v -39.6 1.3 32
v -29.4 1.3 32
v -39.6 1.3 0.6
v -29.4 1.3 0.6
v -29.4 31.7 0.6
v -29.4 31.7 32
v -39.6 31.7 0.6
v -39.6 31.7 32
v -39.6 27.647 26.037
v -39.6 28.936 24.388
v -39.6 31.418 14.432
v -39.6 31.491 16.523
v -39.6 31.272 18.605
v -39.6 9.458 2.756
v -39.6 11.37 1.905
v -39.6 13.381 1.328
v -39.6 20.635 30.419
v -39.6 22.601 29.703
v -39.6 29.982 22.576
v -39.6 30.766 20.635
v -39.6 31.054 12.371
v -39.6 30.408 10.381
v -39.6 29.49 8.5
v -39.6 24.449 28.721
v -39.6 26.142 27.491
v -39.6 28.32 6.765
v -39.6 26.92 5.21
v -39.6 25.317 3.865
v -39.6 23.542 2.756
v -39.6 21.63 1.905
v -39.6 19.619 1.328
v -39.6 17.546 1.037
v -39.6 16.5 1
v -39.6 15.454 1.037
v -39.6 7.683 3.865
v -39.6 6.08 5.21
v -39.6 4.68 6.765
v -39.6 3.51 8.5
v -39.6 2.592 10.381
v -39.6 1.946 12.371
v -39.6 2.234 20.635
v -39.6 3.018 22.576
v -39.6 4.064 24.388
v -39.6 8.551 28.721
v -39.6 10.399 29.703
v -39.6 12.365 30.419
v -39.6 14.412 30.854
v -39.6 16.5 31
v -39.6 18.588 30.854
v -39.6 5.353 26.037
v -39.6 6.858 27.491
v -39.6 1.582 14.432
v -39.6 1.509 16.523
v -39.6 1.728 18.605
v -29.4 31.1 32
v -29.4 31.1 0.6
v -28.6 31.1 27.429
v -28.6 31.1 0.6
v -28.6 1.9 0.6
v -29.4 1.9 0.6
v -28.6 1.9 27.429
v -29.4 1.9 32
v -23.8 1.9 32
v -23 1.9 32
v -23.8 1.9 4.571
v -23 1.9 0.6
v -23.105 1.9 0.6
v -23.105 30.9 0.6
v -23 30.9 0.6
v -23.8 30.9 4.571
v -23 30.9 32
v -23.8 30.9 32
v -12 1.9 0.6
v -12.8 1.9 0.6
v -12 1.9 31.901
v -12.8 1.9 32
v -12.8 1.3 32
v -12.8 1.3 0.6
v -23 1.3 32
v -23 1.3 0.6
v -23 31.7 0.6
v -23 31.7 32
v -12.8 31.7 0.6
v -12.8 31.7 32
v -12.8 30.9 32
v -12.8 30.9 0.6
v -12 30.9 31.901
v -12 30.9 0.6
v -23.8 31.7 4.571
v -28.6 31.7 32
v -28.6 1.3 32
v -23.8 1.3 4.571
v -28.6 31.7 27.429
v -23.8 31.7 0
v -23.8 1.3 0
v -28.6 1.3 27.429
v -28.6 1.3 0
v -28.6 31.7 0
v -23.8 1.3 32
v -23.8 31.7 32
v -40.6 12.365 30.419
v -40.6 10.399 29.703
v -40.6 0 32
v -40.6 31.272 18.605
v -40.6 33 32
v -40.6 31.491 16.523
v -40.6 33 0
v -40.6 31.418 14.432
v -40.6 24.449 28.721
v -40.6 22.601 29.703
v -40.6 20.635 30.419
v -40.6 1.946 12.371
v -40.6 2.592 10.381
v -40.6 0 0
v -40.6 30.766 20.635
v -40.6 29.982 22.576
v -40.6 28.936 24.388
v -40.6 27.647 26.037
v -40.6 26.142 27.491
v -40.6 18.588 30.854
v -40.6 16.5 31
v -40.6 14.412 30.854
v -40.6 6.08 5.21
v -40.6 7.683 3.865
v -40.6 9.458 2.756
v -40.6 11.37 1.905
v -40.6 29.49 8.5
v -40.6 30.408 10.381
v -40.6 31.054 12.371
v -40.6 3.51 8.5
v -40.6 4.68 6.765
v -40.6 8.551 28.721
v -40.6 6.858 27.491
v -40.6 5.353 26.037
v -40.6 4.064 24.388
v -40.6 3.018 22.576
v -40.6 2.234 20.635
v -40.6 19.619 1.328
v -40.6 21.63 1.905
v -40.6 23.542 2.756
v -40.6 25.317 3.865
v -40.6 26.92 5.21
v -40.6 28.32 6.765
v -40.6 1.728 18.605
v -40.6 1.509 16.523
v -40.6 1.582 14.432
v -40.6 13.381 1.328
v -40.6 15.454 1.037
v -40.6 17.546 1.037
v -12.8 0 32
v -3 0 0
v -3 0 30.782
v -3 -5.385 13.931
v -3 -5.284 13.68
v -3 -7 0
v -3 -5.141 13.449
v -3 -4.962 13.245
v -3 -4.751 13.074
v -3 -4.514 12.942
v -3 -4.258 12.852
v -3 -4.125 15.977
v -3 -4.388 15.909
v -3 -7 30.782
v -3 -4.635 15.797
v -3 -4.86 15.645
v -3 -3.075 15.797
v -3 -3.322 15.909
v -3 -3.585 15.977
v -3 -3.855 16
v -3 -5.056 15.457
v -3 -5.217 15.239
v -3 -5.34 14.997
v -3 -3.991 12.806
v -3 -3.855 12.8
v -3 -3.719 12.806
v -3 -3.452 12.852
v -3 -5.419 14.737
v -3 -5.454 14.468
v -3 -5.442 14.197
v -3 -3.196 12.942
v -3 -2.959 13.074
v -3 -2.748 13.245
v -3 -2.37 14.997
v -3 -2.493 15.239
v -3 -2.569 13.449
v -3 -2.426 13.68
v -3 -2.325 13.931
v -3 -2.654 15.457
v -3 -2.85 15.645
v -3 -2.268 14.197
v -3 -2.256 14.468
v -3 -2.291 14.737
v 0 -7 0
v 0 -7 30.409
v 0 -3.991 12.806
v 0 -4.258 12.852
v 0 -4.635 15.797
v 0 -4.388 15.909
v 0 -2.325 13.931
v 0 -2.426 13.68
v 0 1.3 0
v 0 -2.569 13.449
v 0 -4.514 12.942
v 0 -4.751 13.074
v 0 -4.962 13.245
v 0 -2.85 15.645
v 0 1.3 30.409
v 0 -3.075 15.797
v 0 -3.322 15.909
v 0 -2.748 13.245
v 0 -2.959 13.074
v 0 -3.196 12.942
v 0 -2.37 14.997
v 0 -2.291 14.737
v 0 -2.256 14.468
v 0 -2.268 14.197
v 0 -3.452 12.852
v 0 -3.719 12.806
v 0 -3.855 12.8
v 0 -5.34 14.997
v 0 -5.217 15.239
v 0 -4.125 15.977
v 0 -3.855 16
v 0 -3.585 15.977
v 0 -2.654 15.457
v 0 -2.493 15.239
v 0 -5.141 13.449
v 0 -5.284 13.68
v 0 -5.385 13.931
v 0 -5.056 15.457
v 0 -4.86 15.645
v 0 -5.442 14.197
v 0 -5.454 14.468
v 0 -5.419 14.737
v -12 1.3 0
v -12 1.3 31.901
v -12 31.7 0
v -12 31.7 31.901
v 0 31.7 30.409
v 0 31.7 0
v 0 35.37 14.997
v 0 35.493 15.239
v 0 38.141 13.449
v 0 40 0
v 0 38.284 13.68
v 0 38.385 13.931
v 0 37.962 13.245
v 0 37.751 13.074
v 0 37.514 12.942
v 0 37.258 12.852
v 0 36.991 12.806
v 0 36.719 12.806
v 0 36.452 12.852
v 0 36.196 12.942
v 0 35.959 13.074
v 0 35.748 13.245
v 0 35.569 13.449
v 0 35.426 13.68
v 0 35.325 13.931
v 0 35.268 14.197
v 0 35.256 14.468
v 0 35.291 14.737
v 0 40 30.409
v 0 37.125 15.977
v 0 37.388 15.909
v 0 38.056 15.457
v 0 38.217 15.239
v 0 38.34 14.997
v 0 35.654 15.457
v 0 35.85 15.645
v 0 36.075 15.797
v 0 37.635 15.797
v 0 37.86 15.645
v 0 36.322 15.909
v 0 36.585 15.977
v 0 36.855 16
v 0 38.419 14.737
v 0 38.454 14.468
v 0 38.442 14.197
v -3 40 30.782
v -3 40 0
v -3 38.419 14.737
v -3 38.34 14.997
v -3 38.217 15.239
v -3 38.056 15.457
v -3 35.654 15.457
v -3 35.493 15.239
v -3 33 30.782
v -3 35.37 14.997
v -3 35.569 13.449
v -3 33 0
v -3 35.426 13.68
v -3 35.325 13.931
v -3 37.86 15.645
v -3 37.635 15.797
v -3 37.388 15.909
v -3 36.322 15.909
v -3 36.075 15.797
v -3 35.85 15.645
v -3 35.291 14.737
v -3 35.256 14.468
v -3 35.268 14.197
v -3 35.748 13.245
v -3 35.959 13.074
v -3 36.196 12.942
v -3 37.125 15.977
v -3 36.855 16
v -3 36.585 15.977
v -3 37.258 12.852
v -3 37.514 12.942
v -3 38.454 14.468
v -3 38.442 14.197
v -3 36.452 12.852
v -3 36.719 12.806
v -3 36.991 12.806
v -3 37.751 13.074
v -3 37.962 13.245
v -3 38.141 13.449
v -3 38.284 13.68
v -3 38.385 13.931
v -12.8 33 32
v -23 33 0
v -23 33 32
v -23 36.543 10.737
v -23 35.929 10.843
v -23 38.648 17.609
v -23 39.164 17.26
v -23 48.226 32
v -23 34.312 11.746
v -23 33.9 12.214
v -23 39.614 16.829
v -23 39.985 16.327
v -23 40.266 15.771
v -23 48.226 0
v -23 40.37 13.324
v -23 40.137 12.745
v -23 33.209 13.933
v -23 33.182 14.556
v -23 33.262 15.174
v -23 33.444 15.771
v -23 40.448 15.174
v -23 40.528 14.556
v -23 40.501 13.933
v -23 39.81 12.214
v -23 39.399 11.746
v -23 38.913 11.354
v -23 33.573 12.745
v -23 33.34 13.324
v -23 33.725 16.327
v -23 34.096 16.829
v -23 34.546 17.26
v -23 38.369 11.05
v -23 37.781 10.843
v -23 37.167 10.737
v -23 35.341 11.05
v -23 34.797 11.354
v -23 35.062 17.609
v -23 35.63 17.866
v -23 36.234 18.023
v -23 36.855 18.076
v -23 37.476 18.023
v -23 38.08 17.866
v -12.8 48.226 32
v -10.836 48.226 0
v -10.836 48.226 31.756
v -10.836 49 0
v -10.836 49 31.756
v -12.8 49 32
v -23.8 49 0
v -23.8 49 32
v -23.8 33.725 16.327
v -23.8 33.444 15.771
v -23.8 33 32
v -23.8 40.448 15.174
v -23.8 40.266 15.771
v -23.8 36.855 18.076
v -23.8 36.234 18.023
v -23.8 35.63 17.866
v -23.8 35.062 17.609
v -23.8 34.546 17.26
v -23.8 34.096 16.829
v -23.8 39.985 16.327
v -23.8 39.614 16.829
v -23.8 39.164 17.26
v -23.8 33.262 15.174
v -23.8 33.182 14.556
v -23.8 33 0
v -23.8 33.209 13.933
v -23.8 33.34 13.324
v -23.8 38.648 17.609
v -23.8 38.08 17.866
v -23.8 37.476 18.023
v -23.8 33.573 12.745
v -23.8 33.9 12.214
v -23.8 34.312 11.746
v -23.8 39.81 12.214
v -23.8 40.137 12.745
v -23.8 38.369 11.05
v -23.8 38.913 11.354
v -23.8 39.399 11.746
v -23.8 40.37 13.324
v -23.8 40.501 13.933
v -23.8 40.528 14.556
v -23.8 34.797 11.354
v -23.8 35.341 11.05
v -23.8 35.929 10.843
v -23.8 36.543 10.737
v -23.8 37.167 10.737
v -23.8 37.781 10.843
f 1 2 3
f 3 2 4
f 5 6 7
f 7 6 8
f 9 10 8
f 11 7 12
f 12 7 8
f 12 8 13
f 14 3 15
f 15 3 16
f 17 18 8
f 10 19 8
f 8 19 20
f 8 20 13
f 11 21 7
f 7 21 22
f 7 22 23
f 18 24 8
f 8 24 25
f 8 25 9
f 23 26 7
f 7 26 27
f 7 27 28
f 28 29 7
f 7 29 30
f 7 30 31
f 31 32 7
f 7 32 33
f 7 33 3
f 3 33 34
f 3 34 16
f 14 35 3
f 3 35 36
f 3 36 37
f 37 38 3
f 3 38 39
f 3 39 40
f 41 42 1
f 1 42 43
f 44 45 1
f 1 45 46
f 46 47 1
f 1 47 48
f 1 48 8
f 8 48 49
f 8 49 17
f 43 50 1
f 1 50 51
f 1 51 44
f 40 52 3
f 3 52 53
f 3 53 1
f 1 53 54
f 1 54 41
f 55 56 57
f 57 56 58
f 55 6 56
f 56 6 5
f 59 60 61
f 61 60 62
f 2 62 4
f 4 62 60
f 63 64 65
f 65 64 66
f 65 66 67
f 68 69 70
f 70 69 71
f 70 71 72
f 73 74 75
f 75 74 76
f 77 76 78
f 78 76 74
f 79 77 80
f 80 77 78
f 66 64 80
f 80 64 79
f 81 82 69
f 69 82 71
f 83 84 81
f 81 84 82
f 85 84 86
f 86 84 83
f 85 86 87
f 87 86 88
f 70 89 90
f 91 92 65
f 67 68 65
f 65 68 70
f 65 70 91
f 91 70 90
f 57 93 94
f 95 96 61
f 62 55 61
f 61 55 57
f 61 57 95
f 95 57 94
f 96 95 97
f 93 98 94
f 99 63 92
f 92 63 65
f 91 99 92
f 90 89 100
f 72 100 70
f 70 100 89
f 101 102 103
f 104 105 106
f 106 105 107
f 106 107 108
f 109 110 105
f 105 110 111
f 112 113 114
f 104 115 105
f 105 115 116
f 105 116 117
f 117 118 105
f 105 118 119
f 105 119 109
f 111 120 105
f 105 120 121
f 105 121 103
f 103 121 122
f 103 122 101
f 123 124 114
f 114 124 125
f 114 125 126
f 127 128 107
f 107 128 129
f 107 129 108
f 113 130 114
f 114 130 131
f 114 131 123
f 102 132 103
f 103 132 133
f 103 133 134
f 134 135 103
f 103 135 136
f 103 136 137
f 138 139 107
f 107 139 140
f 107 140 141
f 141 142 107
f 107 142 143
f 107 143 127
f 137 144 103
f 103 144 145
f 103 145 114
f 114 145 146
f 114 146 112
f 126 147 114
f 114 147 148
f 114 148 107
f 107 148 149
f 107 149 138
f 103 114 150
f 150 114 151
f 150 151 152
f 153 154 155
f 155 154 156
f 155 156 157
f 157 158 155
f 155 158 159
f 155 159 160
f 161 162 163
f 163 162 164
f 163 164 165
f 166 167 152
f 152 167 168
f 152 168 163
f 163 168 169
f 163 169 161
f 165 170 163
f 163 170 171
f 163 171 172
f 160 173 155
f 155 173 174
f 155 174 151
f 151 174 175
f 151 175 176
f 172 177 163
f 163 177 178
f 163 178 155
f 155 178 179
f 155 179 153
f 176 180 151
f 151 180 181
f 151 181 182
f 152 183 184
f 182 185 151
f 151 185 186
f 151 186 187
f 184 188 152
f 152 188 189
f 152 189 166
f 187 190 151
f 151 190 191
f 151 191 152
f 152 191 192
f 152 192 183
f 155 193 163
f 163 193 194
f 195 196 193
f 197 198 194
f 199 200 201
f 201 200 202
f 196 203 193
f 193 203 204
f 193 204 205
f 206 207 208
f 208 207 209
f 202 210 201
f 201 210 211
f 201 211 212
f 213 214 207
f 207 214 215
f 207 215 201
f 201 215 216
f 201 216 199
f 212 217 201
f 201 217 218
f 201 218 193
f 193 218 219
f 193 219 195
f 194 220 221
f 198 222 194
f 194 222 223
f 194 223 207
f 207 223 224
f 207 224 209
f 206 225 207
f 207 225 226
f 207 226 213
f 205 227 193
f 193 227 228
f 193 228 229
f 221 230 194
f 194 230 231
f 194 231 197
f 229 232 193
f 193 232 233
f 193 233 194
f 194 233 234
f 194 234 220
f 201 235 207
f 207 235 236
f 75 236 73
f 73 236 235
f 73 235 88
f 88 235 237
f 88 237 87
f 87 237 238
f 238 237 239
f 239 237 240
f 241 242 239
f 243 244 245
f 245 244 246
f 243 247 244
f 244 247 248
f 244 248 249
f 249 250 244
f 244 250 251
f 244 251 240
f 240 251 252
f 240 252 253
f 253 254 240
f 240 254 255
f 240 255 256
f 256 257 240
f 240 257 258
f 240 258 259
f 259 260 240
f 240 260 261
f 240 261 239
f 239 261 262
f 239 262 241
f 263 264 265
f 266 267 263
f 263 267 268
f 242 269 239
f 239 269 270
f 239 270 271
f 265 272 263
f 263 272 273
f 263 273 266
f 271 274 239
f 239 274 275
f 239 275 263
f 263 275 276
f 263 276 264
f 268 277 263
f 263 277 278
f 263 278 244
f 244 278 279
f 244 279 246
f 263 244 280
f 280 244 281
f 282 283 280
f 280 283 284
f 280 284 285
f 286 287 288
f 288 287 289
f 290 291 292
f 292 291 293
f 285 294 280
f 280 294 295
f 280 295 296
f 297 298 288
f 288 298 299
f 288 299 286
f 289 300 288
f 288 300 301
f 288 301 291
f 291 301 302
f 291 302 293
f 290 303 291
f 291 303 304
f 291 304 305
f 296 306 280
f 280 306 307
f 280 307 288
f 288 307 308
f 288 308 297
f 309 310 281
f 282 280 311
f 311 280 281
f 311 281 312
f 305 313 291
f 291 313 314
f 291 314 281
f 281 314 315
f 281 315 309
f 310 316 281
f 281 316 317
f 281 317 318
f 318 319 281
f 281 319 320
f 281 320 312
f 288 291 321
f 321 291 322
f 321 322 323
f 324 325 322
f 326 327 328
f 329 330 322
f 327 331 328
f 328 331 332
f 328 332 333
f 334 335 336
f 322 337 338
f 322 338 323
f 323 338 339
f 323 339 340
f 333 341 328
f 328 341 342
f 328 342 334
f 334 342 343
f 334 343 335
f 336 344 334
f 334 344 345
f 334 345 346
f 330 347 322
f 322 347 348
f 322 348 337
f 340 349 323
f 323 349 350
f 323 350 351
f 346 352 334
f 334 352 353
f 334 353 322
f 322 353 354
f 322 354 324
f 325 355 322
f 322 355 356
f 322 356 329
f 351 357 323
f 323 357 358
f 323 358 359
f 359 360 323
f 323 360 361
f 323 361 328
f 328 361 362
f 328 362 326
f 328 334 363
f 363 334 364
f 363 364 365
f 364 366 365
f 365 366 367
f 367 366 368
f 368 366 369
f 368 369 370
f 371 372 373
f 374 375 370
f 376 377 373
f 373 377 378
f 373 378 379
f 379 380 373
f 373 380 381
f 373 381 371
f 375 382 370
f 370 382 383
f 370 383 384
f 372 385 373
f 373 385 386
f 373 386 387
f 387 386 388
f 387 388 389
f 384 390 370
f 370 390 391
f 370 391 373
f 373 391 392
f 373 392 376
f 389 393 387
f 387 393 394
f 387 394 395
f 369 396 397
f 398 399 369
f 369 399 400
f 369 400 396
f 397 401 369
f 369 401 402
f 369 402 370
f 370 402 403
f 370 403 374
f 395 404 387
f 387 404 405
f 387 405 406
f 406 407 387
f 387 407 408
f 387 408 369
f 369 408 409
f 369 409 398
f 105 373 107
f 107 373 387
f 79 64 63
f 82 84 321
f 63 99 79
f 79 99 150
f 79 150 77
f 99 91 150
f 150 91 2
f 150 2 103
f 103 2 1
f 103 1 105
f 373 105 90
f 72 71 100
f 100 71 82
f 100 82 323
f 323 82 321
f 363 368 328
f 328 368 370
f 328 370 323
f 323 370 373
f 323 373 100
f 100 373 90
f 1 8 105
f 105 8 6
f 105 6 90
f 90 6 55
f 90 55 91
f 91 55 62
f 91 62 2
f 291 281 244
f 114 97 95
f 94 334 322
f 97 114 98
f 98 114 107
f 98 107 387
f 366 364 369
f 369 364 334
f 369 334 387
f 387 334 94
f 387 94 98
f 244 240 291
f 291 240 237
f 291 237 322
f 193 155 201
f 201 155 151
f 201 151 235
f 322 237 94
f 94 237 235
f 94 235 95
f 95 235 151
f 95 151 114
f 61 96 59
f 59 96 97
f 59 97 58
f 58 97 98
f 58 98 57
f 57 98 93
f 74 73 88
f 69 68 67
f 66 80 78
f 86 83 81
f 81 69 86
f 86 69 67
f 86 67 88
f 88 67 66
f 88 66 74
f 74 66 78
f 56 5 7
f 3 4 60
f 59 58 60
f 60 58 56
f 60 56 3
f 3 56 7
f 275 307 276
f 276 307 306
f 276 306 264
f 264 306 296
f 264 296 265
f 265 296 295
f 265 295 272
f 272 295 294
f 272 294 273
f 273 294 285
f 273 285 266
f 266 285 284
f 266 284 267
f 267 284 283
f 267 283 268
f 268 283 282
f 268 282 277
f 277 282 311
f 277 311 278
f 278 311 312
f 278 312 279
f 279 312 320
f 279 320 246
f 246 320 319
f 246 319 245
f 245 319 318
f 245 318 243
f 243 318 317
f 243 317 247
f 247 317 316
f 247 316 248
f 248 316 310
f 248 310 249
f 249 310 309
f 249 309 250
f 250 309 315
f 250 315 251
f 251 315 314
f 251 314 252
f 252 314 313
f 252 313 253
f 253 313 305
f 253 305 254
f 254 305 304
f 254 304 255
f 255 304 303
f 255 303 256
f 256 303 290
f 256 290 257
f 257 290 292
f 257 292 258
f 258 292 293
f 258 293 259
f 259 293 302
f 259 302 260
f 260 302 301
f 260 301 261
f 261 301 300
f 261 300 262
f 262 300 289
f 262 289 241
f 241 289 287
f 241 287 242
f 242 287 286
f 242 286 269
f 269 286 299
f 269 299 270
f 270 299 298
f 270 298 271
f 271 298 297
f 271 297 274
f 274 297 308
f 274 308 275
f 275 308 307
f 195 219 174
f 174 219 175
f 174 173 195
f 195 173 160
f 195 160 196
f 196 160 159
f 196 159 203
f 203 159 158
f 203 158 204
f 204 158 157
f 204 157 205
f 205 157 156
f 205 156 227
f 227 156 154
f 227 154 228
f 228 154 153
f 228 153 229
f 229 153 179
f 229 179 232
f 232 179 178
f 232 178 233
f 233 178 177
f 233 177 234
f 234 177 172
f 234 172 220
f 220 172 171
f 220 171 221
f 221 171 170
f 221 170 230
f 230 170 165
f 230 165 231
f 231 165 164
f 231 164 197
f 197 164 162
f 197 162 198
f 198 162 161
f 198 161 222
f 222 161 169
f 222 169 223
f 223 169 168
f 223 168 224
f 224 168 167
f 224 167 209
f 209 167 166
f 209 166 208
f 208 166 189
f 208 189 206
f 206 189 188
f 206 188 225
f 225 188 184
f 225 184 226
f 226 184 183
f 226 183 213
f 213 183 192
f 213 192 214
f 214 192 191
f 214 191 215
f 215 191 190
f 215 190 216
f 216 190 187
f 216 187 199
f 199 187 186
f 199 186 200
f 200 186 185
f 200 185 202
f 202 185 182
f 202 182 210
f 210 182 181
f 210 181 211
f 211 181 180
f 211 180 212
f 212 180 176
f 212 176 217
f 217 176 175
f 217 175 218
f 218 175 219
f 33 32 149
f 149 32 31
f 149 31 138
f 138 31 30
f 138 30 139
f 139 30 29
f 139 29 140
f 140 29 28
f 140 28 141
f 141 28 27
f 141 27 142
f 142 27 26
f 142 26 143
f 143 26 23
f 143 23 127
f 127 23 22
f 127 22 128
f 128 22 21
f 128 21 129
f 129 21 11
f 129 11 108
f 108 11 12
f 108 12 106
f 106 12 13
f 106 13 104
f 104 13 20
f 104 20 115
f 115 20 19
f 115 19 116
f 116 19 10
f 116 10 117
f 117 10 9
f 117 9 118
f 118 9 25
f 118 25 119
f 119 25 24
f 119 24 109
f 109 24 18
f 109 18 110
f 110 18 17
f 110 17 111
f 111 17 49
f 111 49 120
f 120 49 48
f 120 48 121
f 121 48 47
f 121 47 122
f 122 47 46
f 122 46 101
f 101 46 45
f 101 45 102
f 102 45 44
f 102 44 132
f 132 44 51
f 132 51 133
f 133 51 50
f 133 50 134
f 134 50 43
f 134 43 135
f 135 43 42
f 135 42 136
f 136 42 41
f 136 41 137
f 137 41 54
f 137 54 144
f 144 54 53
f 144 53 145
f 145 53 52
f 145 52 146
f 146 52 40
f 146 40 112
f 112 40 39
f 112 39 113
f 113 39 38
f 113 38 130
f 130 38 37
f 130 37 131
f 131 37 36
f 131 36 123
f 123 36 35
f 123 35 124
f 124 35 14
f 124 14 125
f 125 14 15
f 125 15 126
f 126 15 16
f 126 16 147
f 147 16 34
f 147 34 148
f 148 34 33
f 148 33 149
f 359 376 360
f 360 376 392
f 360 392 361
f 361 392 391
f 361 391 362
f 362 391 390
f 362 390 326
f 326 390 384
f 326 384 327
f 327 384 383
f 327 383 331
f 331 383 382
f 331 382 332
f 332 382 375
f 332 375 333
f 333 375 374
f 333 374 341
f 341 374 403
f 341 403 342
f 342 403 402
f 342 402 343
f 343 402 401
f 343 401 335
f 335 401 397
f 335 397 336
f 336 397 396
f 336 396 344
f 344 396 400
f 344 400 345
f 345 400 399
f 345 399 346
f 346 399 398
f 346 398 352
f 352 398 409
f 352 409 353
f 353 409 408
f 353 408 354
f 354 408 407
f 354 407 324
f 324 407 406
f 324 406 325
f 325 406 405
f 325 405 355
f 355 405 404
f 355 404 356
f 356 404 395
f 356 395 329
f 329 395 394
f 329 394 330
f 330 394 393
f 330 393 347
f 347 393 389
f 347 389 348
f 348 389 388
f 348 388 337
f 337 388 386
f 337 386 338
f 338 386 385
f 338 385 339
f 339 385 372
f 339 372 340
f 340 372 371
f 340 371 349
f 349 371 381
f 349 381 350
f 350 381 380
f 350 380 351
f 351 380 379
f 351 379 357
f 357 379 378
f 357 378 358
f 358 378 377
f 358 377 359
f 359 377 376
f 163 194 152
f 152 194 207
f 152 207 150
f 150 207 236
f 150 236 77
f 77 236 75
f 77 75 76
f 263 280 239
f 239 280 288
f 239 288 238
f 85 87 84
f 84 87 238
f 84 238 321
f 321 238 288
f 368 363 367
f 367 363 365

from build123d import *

# Parameters (mm, degrees)
EXTRUDE_1_DEPTH     = 32
EXTRUDE_2_DEPTH     = 30.4
SKETCH_3_W          = 0.8
SKETCH_3_H          = 32
EXTRUDE_3_DEPTH     = 0.6
SKETCH_4_W          = 0.8
SKETCH_4_H          = 32
EXTRUDE_4_DEPTH     = 0.6
SKETCH_5_W          = 11.8
SKETCH_5_H          = 30.4
SKETCH_5_W_2        = 11
EXTRUDE_11_DEPTH    = 0.6
SKETCH_6_R          = 1.6
CUT_EXTRUDE_1_DEPTH = 70.561196079
SKETCH_7_R          = 15
CUT_EXTRUDE_2_DEPTH = 3
SKETCH_8_R          = 3.675878391
CUT_EXTRUDE_3_DEPTH = 10
CUT_EXTRUDE_4_DEPTH = 77.212597384


with BuildPart() as part:
    # 草图1 → 凸台-拉伸1 (new body)
    with BuildSketch(Plane.XY):
        Polygon((-40.6, 33), (-40.6, 0), (-3, 0), (-3, -7), (0, -7), (0, 1.3), (-12, 1.3), (-12, 1.9), (-12.8, 1.9), (-12.8, 1.3), (-23, 1.3), (-23, 1.9), (-23.8, 1.9), (-23.8, 1.3), (-39.6, 1.3), (-39.6, 31.7), (-23.8, 31.7), (-23.8, 30.9), (-23, 30.9), (-23, 31.7), (-12.8, 31.7), (-12.8, 30.9), (-12, 30.9), (-12, 31.7), (0, 31.7), (0, 40), (-3, 40), (-3, 33), (-23, 33), (-23, 48.225966529), (-10.836350524, 48.225966529), (-10.836350524, 49), (-23.8, 49), (-23.8, 33), align=None)
    extrude(amount=EXTRUDE_1_DEPTH)

    # 草图2 → 凸台-拉伸2 (add)
    with BuildSketch(Plane.XZ.offset(-31.7)):
        Polygon((-23.8, 0), (-29.4, 32), (-28.6, 32), (-23, 0), align=None)
    extrude(amount=EXTRUDE_2_DEPTH)

    # 草图3 → 凸台-拉伸3 (add)
    with BuildSketch(Plane.XZ.offset(-31.7)):
        with Locations((-29, 16)):
            Rectangle(SKETCH_3_W, SKETCH_3_H)
    extrude(amount=EXTRUDE_3_DEPTH)

    # 草图4 → 凸台-拉伸4 (add)
    with BuildSketch(Plane(origin=(0, 1.3, 0), x_dir=(1, 0, 0), z_dir=(0, 1, 0))):
        with Locations((-29, -16)):
            Rectangle(SKETCH_4_W, SKETCH_4_H)
    extrude(amount=EXTRUDE_4_DEPTH)

    # 草图5 → 凸台-拉伸11 (add)
    with BuildSketch(Plane(origin=(0, 0, 0), x_dir=(-1, 0, 0), z_dir=(0, 0, -1))):
        with Locations((17.9, 16.5)):
            Rectangle(SKETCH_5_W, SKETCH_5_H)
        with Locations((34.1, 16.5)):
            Rectangle(SKETCH_5_W_2, SKETCH_5_H)
    extrude(amount=-EXTRUDE_11_DEPTH)

    # 草图6 → 切除-拉伸1 (cut, through all)
    with BuildSketch(Plane.ZY.offset(3)):
        with Locations((14.4, 36.855019001)):
            Circle(SKETCH_6_R)
        with Locations(Location((14.4, -3.855019001, 0), (0, 0, 180))):
            Circle(SKETCH_6_R)
    extrude(amount=-CUT_EXTRUDE_1_DEPTH, mode=Mode.SUBTRACT)

    # 草图7 → 切除-拉伸2 (cut)
    with BuildSketch(Plane.ZY.offset(40.6)):
        with Locations((16, 16.5)):
            Circle(SKETCH_7_R)
    extrude(amount=-CUT_EXTRUDE_2_DEPTH, mode=Mode.SUBTRACT)

    # 草图8 → 切除-拉伸3 (cut)
    with BuildSketch(Plane.ZY.offset(23.8)):
        with Locations((14.4, 36.855019001)):
            Circle(SKETCH_8_R)
    extrude(amount=-CUT_EXTRUDE_3_DEPTH, mode=Mode.SUBTRACT)

    # 草图9 → 切除-拉伸4 (cut, through all)
    with BuildSketch(Plane.XZ.offset(7)):
        Polygon((-12.8, 32), (0.069065174, 32), (0.069065174, 30.4), align=None)
    extrude(amount=-CUT_EXTRUDE_4_DEPTH, mode=Mode.SUBTRACT)


solid = part.part
